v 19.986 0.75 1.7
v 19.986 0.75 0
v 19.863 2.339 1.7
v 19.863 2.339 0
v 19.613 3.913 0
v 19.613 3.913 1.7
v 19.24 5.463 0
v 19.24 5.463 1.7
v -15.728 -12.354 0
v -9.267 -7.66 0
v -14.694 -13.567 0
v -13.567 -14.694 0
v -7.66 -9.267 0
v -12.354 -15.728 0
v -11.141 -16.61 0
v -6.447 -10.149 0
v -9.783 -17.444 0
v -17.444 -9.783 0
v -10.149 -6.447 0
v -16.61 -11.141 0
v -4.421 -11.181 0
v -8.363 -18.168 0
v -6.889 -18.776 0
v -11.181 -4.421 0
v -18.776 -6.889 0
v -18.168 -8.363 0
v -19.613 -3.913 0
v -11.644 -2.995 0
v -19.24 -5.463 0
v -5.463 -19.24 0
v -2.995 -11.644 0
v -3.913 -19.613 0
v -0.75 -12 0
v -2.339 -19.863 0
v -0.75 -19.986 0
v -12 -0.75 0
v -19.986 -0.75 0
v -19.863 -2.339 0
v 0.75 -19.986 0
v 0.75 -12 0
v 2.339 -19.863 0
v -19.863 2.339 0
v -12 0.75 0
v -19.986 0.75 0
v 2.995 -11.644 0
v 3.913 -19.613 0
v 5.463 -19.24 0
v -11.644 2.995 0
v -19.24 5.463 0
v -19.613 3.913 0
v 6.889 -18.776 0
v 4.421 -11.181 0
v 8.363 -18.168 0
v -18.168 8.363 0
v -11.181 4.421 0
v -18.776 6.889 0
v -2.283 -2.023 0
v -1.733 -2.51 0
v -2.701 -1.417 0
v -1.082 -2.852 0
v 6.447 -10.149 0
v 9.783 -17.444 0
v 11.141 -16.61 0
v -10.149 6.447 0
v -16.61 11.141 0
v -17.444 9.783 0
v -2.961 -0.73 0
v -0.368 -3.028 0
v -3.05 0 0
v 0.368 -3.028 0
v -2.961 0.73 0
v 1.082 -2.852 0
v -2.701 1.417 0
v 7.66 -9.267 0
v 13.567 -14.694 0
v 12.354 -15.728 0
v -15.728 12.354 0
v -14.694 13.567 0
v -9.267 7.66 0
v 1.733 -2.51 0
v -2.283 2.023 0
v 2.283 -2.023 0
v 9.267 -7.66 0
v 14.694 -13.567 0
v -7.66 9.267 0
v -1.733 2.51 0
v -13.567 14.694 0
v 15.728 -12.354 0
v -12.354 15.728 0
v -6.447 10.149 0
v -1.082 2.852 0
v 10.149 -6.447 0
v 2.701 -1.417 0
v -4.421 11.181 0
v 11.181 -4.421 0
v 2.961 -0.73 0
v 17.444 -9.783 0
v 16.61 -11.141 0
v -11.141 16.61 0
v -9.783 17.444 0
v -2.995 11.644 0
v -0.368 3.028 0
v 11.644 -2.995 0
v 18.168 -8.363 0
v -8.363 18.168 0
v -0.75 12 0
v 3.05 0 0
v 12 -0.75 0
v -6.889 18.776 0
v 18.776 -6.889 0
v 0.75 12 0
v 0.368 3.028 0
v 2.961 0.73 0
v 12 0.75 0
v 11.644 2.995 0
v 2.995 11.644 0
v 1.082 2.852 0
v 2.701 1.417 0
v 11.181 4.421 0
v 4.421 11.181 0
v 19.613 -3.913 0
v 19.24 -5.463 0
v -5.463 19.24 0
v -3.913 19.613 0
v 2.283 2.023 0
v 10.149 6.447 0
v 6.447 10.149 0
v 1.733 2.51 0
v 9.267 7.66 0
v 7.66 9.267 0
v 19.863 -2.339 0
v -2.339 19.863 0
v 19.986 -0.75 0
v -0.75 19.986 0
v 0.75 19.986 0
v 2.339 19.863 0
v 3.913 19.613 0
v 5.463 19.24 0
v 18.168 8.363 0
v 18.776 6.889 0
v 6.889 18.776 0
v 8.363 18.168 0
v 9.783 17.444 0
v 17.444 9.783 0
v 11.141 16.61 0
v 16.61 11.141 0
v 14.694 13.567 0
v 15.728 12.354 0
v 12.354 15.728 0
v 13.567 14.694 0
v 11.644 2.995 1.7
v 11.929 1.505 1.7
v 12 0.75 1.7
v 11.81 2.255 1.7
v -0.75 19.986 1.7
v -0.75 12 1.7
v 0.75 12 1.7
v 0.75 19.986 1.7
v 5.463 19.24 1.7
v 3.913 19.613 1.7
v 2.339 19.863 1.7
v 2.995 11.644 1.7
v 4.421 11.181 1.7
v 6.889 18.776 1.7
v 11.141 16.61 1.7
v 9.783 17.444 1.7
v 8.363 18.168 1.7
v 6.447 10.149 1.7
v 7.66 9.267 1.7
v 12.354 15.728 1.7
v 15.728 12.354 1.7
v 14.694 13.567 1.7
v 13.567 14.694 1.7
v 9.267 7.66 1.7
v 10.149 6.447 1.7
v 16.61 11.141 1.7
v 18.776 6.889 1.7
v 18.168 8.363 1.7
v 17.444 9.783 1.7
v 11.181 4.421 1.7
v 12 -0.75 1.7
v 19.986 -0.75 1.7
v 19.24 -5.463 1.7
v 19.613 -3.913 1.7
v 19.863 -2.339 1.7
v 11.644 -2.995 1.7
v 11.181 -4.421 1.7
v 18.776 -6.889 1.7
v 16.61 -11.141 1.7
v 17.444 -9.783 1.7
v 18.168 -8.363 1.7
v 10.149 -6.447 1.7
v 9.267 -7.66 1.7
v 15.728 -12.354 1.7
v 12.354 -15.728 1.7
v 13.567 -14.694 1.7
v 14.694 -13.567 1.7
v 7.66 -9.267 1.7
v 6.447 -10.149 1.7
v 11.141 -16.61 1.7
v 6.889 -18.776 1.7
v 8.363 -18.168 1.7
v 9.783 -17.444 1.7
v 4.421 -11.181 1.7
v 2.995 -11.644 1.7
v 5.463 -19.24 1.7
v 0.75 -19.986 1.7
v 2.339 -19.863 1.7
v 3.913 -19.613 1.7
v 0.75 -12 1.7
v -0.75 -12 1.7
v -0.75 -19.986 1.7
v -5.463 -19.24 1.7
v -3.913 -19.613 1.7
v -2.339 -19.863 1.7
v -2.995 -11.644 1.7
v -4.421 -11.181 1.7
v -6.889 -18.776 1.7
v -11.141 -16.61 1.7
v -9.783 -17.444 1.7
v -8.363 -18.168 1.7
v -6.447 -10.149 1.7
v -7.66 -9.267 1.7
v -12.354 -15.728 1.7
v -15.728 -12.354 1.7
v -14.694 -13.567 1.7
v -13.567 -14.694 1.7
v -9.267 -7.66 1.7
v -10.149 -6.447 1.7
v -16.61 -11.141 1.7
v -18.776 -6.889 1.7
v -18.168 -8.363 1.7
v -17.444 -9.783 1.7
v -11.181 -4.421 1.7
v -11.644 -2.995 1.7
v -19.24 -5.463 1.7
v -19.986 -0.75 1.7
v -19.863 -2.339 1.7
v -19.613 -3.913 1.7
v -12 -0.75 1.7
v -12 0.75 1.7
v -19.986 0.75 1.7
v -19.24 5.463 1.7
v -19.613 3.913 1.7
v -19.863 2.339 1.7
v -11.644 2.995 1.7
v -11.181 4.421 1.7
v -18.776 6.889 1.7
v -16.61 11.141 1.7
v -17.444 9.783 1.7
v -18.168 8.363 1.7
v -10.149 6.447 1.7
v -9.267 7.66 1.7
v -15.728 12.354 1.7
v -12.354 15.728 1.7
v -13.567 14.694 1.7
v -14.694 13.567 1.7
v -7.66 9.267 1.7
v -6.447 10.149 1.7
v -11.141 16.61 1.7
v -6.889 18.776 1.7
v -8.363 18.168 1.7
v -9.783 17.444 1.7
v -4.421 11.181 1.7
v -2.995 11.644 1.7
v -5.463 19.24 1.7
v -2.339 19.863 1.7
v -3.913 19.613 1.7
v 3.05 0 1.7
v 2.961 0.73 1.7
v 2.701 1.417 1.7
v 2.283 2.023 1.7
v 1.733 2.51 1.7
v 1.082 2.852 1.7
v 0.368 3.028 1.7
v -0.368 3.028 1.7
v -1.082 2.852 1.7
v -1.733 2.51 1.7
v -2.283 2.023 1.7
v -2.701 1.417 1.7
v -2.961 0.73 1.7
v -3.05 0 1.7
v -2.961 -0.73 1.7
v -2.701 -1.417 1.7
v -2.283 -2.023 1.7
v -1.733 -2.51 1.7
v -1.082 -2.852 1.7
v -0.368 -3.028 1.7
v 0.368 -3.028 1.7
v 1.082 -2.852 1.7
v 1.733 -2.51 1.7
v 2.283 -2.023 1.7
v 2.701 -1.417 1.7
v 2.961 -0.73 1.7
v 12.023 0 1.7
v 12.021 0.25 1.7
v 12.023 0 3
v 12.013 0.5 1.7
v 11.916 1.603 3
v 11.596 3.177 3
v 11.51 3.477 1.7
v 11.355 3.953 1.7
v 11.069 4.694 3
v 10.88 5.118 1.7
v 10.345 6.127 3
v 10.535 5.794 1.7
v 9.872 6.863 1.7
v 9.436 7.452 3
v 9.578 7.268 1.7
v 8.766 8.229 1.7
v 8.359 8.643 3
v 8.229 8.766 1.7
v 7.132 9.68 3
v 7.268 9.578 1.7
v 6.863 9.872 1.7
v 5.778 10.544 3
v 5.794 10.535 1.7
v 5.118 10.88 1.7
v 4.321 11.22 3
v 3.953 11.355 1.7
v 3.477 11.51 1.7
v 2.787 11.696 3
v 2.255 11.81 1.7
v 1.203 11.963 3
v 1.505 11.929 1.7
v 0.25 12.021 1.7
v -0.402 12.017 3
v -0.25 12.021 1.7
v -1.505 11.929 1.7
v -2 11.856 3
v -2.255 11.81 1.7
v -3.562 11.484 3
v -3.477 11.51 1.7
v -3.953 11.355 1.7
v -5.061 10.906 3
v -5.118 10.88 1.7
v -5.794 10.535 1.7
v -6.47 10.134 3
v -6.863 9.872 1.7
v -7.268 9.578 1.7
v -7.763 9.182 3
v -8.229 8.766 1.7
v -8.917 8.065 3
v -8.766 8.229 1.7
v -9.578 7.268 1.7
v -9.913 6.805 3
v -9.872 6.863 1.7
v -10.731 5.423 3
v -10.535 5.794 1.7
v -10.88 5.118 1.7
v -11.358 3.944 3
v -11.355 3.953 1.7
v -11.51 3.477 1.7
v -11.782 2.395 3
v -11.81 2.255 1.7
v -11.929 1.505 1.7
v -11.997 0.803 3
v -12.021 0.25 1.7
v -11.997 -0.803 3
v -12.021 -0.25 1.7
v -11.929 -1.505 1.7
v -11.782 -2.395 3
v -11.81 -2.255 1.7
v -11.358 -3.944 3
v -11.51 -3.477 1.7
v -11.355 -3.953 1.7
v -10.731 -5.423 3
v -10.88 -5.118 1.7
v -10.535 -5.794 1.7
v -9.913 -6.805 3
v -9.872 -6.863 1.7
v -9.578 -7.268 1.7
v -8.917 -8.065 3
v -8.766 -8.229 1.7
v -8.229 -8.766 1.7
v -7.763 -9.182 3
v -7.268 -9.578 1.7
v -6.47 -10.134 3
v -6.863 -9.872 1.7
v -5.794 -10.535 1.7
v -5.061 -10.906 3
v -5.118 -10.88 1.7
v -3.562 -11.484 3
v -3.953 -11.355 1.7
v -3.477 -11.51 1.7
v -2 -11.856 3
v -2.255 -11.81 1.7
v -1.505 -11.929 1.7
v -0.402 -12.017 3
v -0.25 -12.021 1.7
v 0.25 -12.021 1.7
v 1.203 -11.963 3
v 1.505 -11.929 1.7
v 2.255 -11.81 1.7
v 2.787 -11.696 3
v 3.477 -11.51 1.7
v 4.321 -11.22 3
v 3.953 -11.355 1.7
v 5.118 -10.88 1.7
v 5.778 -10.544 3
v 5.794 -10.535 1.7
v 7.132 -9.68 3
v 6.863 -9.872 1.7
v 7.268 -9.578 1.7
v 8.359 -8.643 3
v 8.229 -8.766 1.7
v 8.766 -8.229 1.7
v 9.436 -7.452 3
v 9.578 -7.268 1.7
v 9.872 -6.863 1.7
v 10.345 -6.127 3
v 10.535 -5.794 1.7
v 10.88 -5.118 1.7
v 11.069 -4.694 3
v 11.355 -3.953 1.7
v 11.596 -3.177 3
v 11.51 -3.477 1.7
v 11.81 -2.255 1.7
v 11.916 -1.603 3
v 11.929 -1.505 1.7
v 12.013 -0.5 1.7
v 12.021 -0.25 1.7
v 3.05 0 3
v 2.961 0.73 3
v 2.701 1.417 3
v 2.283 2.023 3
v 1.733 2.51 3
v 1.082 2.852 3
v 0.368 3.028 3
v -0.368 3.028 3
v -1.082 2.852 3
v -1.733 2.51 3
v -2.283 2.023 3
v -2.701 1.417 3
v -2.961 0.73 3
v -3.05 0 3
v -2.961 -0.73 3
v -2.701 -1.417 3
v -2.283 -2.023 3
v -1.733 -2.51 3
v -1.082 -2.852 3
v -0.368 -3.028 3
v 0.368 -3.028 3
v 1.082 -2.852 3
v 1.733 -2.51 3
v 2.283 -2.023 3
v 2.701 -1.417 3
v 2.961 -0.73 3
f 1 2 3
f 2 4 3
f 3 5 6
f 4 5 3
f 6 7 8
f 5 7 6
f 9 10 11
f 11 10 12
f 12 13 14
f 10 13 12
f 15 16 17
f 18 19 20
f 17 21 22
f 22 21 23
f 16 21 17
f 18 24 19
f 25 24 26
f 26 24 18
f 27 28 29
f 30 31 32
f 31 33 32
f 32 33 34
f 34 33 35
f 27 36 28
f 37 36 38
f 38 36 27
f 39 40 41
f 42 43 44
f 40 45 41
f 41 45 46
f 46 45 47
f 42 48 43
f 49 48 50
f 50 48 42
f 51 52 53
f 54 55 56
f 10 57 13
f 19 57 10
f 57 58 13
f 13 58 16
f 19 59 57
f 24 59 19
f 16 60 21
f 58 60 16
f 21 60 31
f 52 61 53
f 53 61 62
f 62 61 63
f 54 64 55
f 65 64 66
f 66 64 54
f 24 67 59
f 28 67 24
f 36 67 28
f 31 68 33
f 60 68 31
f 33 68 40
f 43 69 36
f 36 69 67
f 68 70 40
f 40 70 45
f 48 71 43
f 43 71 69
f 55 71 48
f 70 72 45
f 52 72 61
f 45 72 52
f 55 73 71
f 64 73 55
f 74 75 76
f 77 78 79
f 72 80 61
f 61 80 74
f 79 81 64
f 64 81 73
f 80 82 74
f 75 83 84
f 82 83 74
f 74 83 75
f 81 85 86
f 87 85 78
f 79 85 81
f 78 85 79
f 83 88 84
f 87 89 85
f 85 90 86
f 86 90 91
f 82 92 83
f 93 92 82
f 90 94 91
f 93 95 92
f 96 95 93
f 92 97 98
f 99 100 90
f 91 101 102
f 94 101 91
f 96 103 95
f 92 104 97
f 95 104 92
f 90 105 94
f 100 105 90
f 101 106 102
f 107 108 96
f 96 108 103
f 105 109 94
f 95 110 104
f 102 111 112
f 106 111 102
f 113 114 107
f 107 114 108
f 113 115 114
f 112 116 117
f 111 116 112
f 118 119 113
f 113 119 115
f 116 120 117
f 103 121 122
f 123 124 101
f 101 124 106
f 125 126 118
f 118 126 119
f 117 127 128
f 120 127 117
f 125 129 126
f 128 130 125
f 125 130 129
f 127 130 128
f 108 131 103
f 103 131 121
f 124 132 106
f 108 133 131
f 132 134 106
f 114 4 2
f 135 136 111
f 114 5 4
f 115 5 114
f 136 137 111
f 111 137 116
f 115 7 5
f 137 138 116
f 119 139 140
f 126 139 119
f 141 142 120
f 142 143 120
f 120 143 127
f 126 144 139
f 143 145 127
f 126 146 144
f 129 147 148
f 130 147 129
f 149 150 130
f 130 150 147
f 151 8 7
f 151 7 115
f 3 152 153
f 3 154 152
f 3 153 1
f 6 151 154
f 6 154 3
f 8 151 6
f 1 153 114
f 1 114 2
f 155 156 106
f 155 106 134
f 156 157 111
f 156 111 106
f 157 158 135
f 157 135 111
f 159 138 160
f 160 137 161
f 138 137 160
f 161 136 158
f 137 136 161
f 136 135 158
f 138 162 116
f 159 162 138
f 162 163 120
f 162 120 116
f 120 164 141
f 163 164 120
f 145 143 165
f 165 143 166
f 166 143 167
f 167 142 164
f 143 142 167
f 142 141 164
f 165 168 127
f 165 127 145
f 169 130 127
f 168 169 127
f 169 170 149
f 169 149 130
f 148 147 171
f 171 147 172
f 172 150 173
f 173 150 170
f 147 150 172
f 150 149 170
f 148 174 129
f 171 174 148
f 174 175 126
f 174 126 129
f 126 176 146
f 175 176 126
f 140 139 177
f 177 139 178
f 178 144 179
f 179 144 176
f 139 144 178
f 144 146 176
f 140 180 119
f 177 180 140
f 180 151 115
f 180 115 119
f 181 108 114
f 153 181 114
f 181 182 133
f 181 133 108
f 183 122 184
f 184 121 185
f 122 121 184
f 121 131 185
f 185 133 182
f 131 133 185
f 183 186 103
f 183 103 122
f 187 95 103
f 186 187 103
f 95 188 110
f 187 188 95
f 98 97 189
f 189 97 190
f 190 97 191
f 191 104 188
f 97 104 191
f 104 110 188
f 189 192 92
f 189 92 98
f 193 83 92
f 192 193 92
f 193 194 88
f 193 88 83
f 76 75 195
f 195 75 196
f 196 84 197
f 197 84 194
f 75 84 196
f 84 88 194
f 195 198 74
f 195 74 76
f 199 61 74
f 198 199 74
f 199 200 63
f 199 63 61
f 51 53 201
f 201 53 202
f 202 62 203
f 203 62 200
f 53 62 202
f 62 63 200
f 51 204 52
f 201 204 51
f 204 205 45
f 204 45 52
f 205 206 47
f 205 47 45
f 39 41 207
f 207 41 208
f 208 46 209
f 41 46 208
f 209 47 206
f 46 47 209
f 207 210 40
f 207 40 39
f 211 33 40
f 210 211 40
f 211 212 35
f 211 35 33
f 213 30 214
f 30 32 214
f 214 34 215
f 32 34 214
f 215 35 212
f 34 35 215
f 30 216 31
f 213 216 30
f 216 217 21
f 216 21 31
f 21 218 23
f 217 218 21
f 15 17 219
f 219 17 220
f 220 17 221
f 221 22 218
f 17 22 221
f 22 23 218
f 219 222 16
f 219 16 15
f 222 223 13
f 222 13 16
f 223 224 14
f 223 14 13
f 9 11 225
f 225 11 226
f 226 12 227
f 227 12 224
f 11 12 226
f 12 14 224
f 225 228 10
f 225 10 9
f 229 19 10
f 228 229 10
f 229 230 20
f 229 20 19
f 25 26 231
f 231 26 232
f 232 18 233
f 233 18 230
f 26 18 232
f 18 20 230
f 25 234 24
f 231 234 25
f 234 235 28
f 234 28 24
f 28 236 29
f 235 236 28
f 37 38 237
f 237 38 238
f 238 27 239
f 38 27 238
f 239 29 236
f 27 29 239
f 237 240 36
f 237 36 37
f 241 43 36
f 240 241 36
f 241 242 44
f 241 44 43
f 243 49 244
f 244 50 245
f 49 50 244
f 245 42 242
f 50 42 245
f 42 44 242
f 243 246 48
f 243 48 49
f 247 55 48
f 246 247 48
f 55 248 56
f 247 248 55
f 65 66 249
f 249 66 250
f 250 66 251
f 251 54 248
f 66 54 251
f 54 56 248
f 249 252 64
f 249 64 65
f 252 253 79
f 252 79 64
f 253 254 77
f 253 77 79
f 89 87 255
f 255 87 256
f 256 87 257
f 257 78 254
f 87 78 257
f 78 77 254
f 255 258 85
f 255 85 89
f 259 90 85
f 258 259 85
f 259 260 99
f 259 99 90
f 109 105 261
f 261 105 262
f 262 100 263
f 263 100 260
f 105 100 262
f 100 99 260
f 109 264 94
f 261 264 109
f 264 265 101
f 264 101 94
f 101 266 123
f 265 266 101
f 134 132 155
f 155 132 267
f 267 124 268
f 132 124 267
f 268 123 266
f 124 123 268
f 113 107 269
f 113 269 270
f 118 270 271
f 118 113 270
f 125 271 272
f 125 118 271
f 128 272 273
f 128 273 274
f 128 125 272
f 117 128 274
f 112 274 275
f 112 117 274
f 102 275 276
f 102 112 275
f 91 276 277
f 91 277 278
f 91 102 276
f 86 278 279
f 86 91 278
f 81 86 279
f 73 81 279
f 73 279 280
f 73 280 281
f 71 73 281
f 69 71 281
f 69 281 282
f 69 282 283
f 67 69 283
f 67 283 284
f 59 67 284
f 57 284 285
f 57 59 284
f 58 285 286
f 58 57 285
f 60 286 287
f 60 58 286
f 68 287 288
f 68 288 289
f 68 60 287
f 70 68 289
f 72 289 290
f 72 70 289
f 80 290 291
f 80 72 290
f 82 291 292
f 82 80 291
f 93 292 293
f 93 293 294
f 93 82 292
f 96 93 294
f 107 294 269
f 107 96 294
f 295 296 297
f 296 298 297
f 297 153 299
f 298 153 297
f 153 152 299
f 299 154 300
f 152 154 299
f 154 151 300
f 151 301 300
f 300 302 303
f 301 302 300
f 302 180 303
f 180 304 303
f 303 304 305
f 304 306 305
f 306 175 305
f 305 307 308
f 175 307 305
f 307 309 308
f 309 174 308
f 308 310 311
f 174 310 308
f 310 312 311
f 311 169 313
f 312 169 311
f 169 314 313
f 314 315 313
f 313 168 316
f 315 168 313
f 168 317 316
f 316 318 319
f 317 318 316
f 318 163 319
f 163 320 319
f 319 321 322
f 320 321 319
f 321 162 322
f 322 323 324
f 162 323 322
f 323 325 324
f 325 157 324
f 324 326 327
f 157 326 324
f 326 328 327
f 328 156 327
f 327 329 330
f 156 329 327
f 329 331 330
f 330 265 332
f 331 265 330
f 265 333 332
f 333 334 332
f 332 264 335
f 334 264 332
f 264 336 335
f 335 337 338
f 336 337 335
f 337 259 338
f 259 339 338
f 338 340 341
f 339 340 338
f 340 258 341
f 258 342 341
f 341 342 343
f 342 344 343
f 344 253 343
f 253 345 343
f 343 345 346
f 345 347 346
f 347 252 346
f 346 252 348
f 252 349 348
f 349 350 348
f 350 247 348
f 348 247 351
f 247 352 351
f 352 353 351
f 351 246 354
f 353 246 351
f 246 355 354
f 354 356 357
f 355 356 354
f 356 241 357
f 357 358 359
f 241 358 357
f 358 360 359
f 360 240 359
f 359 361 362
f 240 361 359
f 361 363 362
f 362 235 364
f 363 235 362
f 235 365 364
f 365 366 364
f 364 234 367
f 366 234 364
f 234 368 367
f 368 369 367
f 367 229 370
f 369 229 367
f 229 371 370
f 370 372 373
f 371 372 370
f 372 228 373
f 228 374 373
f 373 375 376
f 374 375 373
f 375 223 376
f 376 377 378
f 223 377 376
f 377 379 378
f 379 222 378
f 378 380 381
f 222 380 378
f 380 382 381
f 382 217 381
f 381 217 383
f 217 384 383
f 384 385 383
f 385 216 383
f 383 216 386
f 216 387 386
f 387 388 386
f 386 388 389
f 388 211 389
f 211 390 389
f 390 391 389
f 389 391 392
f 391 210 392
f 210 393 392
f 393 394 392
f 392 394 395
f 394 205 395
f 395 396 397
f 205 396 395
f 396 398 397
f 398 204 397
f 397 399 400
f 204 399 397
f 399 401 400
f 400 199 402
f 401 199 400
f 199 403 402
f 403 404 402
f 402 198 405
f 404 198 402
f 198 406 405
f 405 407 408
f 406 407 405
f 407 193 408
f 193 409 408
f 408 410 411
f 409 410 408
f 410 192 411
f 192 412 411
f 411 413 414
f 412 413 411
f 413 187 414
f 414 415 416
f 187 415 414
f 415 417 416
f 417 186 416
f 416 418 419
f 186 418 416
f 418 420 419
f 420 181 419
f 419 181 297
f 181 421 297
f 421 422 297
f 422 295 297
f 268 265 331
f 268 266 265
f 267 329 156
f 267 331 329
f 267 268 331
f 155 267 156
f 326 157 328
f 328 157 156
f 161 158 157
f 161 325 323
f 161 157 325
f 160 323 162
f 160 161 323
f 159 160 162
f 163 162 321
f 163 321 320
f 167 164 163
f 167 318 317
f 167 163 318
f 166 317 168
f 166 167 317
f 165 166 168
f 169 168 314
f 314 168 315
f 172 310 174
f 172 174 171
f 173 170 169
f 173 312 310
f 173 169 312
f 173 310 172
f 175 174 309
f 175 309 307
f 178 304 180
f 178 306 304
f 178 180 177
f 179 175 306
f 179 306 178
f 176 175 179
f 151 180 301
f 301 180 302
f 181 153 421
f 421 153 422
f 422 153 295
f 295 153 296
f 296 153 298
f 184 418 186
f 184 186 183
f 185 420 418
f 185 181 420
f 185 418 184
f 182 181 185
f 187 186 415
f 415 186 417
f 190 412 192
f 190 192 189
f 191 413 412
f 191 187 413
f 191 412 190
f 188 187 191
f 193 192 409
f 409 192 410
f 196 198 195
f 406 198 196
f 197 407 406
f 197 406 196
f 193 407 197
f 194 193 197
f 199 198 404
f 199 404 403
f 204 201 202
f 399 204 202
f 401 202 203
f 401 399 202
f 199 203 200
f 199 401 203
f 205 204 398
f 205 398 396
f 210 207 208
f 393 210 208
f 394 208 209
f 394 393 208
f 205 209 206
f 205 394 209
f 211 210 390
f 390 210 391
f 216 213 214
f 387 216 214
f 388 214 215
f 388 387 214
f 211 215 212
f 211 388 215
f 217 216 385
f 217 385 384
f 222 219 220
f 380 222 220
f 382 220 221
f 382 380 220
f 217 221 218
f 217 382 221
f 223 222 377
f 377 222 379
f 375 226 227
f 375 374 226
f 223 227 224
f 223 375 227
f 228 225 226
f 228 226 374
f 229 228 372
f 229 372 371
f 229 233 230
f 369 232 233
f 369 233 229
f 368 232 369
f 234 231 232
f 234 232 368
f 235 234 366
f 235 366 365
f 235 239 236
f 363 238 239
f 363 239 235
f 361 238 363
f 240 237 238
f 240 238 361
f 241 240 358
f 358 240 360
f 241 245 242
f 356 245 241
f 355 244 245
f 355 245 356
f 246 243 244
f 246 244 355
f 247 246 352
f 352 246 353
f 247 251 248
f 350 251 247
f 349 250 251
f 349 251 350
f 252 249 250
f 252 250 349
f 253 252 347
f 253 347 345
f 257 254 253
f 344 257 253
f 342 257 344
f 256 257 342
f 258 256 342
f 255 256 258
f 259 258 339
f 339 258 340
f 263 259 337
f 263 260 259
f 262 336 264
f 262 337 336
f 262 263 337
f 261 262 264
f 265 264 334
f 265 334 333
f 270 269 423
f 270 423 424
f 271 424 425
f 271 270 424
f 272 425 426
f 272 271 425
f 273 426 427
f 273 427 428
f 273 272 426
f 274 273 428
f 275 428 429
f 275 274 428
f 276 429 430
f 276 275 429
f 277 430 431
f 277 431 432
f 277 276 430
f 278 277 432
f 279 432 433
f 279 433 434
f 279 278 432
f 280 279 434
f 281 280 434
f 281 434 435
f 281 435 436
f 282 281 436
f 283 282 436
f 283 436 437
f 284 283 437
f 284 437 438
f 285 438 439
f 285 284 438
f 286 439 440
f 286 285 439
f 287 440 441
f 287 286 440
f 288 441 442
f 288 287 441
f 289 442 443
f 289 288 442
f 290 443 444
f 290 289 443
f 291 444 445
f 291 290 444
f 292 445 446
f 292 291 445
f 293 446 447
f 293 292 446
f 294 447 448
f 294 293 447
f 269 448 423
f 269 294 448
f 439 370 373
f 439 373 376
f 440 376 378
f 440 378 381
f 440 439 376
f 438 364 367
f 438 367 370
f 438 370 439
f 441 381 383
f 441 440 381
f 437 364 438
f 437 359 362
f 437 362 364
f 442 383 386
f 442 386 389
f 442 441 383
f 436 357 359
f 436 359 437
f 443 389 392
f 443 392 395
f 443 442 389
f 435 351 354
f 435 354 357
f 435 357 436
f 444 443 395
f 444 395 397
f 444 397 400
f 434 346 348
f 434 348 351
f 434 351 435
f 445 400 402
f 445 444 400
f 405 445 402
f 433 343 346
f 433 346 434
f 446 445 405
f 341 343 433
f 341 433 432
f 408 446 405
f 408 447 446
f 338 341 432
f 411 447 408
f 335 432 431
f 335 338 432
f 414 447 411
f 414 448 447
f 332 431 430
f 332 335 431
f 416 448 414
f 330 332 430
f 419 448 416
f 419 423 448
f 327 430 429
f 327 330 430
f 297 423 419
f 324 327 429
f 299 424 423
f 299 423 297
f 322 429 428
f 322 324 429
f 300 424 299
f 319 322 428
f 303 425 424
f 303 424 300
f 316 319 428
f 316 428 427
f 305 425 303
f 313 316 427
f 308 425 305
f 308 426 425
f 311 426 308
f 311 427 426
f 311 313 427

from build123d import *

# Parameters (mm, degrees)
SKETCH_R           = 20
SKETCH_R_2         = 3.05
PAD_DEPTH          = 1.7
SKETCH001_W        = 1.5
SKETCH001_H        = 8
POCKET_DEPTH       = 114.889162
POLARPATTERN_COUNT = 20
SKETCH002_R        = 12.023415
SKETCH002_R_2      = 3.05
PAD001_DEPTH       = 1.3


with BuildPart() as part:
    # Sketch → Pad (new body)
    with BuildSketch(Plane.XY):
        Circle(SKETCH_R)
        Circle(SKETCH_R_2, mode=Mode.SUBTRACT)
    extrude(amount=PAD_DEPTH)

    # Sketch001 (on Face4 of Pad) → Pocket (cut, through all)
    with BuildSketch(Plane.XY.offset(1.7)):
        with Locations((0, 16)):
            Rectangle(SKETCH001_W, SKETCH001_H)
    pocket = extrude(amount=-POCKET_DEPTH, mode=Mode.SUBTRACT)

    # PolarPattern: Pocket ×20 about axis
    polarpattern_axis = Axis((0, 0, 1.7), (0, 0, 1))
    for i in range(1, POLARPATTERN_COUNT):
        add(pocket.rotate(polarpattern_axis, i * 360 / POLARPATTERN_COUNT), mode=Mode.SUBTRACT)

    # Sketch002 (on Face4 of PolarPattern) → Pad001 (join)
    with BuildSketch(Plane.XY.offset(1.7)):
        Circle(SKETCH002_R)
        Circle(SKETCH002_R_2, mode=Mode.SUBTRACT)
    extrude(amount=PAD001_DEPTH)


solid = part.part
